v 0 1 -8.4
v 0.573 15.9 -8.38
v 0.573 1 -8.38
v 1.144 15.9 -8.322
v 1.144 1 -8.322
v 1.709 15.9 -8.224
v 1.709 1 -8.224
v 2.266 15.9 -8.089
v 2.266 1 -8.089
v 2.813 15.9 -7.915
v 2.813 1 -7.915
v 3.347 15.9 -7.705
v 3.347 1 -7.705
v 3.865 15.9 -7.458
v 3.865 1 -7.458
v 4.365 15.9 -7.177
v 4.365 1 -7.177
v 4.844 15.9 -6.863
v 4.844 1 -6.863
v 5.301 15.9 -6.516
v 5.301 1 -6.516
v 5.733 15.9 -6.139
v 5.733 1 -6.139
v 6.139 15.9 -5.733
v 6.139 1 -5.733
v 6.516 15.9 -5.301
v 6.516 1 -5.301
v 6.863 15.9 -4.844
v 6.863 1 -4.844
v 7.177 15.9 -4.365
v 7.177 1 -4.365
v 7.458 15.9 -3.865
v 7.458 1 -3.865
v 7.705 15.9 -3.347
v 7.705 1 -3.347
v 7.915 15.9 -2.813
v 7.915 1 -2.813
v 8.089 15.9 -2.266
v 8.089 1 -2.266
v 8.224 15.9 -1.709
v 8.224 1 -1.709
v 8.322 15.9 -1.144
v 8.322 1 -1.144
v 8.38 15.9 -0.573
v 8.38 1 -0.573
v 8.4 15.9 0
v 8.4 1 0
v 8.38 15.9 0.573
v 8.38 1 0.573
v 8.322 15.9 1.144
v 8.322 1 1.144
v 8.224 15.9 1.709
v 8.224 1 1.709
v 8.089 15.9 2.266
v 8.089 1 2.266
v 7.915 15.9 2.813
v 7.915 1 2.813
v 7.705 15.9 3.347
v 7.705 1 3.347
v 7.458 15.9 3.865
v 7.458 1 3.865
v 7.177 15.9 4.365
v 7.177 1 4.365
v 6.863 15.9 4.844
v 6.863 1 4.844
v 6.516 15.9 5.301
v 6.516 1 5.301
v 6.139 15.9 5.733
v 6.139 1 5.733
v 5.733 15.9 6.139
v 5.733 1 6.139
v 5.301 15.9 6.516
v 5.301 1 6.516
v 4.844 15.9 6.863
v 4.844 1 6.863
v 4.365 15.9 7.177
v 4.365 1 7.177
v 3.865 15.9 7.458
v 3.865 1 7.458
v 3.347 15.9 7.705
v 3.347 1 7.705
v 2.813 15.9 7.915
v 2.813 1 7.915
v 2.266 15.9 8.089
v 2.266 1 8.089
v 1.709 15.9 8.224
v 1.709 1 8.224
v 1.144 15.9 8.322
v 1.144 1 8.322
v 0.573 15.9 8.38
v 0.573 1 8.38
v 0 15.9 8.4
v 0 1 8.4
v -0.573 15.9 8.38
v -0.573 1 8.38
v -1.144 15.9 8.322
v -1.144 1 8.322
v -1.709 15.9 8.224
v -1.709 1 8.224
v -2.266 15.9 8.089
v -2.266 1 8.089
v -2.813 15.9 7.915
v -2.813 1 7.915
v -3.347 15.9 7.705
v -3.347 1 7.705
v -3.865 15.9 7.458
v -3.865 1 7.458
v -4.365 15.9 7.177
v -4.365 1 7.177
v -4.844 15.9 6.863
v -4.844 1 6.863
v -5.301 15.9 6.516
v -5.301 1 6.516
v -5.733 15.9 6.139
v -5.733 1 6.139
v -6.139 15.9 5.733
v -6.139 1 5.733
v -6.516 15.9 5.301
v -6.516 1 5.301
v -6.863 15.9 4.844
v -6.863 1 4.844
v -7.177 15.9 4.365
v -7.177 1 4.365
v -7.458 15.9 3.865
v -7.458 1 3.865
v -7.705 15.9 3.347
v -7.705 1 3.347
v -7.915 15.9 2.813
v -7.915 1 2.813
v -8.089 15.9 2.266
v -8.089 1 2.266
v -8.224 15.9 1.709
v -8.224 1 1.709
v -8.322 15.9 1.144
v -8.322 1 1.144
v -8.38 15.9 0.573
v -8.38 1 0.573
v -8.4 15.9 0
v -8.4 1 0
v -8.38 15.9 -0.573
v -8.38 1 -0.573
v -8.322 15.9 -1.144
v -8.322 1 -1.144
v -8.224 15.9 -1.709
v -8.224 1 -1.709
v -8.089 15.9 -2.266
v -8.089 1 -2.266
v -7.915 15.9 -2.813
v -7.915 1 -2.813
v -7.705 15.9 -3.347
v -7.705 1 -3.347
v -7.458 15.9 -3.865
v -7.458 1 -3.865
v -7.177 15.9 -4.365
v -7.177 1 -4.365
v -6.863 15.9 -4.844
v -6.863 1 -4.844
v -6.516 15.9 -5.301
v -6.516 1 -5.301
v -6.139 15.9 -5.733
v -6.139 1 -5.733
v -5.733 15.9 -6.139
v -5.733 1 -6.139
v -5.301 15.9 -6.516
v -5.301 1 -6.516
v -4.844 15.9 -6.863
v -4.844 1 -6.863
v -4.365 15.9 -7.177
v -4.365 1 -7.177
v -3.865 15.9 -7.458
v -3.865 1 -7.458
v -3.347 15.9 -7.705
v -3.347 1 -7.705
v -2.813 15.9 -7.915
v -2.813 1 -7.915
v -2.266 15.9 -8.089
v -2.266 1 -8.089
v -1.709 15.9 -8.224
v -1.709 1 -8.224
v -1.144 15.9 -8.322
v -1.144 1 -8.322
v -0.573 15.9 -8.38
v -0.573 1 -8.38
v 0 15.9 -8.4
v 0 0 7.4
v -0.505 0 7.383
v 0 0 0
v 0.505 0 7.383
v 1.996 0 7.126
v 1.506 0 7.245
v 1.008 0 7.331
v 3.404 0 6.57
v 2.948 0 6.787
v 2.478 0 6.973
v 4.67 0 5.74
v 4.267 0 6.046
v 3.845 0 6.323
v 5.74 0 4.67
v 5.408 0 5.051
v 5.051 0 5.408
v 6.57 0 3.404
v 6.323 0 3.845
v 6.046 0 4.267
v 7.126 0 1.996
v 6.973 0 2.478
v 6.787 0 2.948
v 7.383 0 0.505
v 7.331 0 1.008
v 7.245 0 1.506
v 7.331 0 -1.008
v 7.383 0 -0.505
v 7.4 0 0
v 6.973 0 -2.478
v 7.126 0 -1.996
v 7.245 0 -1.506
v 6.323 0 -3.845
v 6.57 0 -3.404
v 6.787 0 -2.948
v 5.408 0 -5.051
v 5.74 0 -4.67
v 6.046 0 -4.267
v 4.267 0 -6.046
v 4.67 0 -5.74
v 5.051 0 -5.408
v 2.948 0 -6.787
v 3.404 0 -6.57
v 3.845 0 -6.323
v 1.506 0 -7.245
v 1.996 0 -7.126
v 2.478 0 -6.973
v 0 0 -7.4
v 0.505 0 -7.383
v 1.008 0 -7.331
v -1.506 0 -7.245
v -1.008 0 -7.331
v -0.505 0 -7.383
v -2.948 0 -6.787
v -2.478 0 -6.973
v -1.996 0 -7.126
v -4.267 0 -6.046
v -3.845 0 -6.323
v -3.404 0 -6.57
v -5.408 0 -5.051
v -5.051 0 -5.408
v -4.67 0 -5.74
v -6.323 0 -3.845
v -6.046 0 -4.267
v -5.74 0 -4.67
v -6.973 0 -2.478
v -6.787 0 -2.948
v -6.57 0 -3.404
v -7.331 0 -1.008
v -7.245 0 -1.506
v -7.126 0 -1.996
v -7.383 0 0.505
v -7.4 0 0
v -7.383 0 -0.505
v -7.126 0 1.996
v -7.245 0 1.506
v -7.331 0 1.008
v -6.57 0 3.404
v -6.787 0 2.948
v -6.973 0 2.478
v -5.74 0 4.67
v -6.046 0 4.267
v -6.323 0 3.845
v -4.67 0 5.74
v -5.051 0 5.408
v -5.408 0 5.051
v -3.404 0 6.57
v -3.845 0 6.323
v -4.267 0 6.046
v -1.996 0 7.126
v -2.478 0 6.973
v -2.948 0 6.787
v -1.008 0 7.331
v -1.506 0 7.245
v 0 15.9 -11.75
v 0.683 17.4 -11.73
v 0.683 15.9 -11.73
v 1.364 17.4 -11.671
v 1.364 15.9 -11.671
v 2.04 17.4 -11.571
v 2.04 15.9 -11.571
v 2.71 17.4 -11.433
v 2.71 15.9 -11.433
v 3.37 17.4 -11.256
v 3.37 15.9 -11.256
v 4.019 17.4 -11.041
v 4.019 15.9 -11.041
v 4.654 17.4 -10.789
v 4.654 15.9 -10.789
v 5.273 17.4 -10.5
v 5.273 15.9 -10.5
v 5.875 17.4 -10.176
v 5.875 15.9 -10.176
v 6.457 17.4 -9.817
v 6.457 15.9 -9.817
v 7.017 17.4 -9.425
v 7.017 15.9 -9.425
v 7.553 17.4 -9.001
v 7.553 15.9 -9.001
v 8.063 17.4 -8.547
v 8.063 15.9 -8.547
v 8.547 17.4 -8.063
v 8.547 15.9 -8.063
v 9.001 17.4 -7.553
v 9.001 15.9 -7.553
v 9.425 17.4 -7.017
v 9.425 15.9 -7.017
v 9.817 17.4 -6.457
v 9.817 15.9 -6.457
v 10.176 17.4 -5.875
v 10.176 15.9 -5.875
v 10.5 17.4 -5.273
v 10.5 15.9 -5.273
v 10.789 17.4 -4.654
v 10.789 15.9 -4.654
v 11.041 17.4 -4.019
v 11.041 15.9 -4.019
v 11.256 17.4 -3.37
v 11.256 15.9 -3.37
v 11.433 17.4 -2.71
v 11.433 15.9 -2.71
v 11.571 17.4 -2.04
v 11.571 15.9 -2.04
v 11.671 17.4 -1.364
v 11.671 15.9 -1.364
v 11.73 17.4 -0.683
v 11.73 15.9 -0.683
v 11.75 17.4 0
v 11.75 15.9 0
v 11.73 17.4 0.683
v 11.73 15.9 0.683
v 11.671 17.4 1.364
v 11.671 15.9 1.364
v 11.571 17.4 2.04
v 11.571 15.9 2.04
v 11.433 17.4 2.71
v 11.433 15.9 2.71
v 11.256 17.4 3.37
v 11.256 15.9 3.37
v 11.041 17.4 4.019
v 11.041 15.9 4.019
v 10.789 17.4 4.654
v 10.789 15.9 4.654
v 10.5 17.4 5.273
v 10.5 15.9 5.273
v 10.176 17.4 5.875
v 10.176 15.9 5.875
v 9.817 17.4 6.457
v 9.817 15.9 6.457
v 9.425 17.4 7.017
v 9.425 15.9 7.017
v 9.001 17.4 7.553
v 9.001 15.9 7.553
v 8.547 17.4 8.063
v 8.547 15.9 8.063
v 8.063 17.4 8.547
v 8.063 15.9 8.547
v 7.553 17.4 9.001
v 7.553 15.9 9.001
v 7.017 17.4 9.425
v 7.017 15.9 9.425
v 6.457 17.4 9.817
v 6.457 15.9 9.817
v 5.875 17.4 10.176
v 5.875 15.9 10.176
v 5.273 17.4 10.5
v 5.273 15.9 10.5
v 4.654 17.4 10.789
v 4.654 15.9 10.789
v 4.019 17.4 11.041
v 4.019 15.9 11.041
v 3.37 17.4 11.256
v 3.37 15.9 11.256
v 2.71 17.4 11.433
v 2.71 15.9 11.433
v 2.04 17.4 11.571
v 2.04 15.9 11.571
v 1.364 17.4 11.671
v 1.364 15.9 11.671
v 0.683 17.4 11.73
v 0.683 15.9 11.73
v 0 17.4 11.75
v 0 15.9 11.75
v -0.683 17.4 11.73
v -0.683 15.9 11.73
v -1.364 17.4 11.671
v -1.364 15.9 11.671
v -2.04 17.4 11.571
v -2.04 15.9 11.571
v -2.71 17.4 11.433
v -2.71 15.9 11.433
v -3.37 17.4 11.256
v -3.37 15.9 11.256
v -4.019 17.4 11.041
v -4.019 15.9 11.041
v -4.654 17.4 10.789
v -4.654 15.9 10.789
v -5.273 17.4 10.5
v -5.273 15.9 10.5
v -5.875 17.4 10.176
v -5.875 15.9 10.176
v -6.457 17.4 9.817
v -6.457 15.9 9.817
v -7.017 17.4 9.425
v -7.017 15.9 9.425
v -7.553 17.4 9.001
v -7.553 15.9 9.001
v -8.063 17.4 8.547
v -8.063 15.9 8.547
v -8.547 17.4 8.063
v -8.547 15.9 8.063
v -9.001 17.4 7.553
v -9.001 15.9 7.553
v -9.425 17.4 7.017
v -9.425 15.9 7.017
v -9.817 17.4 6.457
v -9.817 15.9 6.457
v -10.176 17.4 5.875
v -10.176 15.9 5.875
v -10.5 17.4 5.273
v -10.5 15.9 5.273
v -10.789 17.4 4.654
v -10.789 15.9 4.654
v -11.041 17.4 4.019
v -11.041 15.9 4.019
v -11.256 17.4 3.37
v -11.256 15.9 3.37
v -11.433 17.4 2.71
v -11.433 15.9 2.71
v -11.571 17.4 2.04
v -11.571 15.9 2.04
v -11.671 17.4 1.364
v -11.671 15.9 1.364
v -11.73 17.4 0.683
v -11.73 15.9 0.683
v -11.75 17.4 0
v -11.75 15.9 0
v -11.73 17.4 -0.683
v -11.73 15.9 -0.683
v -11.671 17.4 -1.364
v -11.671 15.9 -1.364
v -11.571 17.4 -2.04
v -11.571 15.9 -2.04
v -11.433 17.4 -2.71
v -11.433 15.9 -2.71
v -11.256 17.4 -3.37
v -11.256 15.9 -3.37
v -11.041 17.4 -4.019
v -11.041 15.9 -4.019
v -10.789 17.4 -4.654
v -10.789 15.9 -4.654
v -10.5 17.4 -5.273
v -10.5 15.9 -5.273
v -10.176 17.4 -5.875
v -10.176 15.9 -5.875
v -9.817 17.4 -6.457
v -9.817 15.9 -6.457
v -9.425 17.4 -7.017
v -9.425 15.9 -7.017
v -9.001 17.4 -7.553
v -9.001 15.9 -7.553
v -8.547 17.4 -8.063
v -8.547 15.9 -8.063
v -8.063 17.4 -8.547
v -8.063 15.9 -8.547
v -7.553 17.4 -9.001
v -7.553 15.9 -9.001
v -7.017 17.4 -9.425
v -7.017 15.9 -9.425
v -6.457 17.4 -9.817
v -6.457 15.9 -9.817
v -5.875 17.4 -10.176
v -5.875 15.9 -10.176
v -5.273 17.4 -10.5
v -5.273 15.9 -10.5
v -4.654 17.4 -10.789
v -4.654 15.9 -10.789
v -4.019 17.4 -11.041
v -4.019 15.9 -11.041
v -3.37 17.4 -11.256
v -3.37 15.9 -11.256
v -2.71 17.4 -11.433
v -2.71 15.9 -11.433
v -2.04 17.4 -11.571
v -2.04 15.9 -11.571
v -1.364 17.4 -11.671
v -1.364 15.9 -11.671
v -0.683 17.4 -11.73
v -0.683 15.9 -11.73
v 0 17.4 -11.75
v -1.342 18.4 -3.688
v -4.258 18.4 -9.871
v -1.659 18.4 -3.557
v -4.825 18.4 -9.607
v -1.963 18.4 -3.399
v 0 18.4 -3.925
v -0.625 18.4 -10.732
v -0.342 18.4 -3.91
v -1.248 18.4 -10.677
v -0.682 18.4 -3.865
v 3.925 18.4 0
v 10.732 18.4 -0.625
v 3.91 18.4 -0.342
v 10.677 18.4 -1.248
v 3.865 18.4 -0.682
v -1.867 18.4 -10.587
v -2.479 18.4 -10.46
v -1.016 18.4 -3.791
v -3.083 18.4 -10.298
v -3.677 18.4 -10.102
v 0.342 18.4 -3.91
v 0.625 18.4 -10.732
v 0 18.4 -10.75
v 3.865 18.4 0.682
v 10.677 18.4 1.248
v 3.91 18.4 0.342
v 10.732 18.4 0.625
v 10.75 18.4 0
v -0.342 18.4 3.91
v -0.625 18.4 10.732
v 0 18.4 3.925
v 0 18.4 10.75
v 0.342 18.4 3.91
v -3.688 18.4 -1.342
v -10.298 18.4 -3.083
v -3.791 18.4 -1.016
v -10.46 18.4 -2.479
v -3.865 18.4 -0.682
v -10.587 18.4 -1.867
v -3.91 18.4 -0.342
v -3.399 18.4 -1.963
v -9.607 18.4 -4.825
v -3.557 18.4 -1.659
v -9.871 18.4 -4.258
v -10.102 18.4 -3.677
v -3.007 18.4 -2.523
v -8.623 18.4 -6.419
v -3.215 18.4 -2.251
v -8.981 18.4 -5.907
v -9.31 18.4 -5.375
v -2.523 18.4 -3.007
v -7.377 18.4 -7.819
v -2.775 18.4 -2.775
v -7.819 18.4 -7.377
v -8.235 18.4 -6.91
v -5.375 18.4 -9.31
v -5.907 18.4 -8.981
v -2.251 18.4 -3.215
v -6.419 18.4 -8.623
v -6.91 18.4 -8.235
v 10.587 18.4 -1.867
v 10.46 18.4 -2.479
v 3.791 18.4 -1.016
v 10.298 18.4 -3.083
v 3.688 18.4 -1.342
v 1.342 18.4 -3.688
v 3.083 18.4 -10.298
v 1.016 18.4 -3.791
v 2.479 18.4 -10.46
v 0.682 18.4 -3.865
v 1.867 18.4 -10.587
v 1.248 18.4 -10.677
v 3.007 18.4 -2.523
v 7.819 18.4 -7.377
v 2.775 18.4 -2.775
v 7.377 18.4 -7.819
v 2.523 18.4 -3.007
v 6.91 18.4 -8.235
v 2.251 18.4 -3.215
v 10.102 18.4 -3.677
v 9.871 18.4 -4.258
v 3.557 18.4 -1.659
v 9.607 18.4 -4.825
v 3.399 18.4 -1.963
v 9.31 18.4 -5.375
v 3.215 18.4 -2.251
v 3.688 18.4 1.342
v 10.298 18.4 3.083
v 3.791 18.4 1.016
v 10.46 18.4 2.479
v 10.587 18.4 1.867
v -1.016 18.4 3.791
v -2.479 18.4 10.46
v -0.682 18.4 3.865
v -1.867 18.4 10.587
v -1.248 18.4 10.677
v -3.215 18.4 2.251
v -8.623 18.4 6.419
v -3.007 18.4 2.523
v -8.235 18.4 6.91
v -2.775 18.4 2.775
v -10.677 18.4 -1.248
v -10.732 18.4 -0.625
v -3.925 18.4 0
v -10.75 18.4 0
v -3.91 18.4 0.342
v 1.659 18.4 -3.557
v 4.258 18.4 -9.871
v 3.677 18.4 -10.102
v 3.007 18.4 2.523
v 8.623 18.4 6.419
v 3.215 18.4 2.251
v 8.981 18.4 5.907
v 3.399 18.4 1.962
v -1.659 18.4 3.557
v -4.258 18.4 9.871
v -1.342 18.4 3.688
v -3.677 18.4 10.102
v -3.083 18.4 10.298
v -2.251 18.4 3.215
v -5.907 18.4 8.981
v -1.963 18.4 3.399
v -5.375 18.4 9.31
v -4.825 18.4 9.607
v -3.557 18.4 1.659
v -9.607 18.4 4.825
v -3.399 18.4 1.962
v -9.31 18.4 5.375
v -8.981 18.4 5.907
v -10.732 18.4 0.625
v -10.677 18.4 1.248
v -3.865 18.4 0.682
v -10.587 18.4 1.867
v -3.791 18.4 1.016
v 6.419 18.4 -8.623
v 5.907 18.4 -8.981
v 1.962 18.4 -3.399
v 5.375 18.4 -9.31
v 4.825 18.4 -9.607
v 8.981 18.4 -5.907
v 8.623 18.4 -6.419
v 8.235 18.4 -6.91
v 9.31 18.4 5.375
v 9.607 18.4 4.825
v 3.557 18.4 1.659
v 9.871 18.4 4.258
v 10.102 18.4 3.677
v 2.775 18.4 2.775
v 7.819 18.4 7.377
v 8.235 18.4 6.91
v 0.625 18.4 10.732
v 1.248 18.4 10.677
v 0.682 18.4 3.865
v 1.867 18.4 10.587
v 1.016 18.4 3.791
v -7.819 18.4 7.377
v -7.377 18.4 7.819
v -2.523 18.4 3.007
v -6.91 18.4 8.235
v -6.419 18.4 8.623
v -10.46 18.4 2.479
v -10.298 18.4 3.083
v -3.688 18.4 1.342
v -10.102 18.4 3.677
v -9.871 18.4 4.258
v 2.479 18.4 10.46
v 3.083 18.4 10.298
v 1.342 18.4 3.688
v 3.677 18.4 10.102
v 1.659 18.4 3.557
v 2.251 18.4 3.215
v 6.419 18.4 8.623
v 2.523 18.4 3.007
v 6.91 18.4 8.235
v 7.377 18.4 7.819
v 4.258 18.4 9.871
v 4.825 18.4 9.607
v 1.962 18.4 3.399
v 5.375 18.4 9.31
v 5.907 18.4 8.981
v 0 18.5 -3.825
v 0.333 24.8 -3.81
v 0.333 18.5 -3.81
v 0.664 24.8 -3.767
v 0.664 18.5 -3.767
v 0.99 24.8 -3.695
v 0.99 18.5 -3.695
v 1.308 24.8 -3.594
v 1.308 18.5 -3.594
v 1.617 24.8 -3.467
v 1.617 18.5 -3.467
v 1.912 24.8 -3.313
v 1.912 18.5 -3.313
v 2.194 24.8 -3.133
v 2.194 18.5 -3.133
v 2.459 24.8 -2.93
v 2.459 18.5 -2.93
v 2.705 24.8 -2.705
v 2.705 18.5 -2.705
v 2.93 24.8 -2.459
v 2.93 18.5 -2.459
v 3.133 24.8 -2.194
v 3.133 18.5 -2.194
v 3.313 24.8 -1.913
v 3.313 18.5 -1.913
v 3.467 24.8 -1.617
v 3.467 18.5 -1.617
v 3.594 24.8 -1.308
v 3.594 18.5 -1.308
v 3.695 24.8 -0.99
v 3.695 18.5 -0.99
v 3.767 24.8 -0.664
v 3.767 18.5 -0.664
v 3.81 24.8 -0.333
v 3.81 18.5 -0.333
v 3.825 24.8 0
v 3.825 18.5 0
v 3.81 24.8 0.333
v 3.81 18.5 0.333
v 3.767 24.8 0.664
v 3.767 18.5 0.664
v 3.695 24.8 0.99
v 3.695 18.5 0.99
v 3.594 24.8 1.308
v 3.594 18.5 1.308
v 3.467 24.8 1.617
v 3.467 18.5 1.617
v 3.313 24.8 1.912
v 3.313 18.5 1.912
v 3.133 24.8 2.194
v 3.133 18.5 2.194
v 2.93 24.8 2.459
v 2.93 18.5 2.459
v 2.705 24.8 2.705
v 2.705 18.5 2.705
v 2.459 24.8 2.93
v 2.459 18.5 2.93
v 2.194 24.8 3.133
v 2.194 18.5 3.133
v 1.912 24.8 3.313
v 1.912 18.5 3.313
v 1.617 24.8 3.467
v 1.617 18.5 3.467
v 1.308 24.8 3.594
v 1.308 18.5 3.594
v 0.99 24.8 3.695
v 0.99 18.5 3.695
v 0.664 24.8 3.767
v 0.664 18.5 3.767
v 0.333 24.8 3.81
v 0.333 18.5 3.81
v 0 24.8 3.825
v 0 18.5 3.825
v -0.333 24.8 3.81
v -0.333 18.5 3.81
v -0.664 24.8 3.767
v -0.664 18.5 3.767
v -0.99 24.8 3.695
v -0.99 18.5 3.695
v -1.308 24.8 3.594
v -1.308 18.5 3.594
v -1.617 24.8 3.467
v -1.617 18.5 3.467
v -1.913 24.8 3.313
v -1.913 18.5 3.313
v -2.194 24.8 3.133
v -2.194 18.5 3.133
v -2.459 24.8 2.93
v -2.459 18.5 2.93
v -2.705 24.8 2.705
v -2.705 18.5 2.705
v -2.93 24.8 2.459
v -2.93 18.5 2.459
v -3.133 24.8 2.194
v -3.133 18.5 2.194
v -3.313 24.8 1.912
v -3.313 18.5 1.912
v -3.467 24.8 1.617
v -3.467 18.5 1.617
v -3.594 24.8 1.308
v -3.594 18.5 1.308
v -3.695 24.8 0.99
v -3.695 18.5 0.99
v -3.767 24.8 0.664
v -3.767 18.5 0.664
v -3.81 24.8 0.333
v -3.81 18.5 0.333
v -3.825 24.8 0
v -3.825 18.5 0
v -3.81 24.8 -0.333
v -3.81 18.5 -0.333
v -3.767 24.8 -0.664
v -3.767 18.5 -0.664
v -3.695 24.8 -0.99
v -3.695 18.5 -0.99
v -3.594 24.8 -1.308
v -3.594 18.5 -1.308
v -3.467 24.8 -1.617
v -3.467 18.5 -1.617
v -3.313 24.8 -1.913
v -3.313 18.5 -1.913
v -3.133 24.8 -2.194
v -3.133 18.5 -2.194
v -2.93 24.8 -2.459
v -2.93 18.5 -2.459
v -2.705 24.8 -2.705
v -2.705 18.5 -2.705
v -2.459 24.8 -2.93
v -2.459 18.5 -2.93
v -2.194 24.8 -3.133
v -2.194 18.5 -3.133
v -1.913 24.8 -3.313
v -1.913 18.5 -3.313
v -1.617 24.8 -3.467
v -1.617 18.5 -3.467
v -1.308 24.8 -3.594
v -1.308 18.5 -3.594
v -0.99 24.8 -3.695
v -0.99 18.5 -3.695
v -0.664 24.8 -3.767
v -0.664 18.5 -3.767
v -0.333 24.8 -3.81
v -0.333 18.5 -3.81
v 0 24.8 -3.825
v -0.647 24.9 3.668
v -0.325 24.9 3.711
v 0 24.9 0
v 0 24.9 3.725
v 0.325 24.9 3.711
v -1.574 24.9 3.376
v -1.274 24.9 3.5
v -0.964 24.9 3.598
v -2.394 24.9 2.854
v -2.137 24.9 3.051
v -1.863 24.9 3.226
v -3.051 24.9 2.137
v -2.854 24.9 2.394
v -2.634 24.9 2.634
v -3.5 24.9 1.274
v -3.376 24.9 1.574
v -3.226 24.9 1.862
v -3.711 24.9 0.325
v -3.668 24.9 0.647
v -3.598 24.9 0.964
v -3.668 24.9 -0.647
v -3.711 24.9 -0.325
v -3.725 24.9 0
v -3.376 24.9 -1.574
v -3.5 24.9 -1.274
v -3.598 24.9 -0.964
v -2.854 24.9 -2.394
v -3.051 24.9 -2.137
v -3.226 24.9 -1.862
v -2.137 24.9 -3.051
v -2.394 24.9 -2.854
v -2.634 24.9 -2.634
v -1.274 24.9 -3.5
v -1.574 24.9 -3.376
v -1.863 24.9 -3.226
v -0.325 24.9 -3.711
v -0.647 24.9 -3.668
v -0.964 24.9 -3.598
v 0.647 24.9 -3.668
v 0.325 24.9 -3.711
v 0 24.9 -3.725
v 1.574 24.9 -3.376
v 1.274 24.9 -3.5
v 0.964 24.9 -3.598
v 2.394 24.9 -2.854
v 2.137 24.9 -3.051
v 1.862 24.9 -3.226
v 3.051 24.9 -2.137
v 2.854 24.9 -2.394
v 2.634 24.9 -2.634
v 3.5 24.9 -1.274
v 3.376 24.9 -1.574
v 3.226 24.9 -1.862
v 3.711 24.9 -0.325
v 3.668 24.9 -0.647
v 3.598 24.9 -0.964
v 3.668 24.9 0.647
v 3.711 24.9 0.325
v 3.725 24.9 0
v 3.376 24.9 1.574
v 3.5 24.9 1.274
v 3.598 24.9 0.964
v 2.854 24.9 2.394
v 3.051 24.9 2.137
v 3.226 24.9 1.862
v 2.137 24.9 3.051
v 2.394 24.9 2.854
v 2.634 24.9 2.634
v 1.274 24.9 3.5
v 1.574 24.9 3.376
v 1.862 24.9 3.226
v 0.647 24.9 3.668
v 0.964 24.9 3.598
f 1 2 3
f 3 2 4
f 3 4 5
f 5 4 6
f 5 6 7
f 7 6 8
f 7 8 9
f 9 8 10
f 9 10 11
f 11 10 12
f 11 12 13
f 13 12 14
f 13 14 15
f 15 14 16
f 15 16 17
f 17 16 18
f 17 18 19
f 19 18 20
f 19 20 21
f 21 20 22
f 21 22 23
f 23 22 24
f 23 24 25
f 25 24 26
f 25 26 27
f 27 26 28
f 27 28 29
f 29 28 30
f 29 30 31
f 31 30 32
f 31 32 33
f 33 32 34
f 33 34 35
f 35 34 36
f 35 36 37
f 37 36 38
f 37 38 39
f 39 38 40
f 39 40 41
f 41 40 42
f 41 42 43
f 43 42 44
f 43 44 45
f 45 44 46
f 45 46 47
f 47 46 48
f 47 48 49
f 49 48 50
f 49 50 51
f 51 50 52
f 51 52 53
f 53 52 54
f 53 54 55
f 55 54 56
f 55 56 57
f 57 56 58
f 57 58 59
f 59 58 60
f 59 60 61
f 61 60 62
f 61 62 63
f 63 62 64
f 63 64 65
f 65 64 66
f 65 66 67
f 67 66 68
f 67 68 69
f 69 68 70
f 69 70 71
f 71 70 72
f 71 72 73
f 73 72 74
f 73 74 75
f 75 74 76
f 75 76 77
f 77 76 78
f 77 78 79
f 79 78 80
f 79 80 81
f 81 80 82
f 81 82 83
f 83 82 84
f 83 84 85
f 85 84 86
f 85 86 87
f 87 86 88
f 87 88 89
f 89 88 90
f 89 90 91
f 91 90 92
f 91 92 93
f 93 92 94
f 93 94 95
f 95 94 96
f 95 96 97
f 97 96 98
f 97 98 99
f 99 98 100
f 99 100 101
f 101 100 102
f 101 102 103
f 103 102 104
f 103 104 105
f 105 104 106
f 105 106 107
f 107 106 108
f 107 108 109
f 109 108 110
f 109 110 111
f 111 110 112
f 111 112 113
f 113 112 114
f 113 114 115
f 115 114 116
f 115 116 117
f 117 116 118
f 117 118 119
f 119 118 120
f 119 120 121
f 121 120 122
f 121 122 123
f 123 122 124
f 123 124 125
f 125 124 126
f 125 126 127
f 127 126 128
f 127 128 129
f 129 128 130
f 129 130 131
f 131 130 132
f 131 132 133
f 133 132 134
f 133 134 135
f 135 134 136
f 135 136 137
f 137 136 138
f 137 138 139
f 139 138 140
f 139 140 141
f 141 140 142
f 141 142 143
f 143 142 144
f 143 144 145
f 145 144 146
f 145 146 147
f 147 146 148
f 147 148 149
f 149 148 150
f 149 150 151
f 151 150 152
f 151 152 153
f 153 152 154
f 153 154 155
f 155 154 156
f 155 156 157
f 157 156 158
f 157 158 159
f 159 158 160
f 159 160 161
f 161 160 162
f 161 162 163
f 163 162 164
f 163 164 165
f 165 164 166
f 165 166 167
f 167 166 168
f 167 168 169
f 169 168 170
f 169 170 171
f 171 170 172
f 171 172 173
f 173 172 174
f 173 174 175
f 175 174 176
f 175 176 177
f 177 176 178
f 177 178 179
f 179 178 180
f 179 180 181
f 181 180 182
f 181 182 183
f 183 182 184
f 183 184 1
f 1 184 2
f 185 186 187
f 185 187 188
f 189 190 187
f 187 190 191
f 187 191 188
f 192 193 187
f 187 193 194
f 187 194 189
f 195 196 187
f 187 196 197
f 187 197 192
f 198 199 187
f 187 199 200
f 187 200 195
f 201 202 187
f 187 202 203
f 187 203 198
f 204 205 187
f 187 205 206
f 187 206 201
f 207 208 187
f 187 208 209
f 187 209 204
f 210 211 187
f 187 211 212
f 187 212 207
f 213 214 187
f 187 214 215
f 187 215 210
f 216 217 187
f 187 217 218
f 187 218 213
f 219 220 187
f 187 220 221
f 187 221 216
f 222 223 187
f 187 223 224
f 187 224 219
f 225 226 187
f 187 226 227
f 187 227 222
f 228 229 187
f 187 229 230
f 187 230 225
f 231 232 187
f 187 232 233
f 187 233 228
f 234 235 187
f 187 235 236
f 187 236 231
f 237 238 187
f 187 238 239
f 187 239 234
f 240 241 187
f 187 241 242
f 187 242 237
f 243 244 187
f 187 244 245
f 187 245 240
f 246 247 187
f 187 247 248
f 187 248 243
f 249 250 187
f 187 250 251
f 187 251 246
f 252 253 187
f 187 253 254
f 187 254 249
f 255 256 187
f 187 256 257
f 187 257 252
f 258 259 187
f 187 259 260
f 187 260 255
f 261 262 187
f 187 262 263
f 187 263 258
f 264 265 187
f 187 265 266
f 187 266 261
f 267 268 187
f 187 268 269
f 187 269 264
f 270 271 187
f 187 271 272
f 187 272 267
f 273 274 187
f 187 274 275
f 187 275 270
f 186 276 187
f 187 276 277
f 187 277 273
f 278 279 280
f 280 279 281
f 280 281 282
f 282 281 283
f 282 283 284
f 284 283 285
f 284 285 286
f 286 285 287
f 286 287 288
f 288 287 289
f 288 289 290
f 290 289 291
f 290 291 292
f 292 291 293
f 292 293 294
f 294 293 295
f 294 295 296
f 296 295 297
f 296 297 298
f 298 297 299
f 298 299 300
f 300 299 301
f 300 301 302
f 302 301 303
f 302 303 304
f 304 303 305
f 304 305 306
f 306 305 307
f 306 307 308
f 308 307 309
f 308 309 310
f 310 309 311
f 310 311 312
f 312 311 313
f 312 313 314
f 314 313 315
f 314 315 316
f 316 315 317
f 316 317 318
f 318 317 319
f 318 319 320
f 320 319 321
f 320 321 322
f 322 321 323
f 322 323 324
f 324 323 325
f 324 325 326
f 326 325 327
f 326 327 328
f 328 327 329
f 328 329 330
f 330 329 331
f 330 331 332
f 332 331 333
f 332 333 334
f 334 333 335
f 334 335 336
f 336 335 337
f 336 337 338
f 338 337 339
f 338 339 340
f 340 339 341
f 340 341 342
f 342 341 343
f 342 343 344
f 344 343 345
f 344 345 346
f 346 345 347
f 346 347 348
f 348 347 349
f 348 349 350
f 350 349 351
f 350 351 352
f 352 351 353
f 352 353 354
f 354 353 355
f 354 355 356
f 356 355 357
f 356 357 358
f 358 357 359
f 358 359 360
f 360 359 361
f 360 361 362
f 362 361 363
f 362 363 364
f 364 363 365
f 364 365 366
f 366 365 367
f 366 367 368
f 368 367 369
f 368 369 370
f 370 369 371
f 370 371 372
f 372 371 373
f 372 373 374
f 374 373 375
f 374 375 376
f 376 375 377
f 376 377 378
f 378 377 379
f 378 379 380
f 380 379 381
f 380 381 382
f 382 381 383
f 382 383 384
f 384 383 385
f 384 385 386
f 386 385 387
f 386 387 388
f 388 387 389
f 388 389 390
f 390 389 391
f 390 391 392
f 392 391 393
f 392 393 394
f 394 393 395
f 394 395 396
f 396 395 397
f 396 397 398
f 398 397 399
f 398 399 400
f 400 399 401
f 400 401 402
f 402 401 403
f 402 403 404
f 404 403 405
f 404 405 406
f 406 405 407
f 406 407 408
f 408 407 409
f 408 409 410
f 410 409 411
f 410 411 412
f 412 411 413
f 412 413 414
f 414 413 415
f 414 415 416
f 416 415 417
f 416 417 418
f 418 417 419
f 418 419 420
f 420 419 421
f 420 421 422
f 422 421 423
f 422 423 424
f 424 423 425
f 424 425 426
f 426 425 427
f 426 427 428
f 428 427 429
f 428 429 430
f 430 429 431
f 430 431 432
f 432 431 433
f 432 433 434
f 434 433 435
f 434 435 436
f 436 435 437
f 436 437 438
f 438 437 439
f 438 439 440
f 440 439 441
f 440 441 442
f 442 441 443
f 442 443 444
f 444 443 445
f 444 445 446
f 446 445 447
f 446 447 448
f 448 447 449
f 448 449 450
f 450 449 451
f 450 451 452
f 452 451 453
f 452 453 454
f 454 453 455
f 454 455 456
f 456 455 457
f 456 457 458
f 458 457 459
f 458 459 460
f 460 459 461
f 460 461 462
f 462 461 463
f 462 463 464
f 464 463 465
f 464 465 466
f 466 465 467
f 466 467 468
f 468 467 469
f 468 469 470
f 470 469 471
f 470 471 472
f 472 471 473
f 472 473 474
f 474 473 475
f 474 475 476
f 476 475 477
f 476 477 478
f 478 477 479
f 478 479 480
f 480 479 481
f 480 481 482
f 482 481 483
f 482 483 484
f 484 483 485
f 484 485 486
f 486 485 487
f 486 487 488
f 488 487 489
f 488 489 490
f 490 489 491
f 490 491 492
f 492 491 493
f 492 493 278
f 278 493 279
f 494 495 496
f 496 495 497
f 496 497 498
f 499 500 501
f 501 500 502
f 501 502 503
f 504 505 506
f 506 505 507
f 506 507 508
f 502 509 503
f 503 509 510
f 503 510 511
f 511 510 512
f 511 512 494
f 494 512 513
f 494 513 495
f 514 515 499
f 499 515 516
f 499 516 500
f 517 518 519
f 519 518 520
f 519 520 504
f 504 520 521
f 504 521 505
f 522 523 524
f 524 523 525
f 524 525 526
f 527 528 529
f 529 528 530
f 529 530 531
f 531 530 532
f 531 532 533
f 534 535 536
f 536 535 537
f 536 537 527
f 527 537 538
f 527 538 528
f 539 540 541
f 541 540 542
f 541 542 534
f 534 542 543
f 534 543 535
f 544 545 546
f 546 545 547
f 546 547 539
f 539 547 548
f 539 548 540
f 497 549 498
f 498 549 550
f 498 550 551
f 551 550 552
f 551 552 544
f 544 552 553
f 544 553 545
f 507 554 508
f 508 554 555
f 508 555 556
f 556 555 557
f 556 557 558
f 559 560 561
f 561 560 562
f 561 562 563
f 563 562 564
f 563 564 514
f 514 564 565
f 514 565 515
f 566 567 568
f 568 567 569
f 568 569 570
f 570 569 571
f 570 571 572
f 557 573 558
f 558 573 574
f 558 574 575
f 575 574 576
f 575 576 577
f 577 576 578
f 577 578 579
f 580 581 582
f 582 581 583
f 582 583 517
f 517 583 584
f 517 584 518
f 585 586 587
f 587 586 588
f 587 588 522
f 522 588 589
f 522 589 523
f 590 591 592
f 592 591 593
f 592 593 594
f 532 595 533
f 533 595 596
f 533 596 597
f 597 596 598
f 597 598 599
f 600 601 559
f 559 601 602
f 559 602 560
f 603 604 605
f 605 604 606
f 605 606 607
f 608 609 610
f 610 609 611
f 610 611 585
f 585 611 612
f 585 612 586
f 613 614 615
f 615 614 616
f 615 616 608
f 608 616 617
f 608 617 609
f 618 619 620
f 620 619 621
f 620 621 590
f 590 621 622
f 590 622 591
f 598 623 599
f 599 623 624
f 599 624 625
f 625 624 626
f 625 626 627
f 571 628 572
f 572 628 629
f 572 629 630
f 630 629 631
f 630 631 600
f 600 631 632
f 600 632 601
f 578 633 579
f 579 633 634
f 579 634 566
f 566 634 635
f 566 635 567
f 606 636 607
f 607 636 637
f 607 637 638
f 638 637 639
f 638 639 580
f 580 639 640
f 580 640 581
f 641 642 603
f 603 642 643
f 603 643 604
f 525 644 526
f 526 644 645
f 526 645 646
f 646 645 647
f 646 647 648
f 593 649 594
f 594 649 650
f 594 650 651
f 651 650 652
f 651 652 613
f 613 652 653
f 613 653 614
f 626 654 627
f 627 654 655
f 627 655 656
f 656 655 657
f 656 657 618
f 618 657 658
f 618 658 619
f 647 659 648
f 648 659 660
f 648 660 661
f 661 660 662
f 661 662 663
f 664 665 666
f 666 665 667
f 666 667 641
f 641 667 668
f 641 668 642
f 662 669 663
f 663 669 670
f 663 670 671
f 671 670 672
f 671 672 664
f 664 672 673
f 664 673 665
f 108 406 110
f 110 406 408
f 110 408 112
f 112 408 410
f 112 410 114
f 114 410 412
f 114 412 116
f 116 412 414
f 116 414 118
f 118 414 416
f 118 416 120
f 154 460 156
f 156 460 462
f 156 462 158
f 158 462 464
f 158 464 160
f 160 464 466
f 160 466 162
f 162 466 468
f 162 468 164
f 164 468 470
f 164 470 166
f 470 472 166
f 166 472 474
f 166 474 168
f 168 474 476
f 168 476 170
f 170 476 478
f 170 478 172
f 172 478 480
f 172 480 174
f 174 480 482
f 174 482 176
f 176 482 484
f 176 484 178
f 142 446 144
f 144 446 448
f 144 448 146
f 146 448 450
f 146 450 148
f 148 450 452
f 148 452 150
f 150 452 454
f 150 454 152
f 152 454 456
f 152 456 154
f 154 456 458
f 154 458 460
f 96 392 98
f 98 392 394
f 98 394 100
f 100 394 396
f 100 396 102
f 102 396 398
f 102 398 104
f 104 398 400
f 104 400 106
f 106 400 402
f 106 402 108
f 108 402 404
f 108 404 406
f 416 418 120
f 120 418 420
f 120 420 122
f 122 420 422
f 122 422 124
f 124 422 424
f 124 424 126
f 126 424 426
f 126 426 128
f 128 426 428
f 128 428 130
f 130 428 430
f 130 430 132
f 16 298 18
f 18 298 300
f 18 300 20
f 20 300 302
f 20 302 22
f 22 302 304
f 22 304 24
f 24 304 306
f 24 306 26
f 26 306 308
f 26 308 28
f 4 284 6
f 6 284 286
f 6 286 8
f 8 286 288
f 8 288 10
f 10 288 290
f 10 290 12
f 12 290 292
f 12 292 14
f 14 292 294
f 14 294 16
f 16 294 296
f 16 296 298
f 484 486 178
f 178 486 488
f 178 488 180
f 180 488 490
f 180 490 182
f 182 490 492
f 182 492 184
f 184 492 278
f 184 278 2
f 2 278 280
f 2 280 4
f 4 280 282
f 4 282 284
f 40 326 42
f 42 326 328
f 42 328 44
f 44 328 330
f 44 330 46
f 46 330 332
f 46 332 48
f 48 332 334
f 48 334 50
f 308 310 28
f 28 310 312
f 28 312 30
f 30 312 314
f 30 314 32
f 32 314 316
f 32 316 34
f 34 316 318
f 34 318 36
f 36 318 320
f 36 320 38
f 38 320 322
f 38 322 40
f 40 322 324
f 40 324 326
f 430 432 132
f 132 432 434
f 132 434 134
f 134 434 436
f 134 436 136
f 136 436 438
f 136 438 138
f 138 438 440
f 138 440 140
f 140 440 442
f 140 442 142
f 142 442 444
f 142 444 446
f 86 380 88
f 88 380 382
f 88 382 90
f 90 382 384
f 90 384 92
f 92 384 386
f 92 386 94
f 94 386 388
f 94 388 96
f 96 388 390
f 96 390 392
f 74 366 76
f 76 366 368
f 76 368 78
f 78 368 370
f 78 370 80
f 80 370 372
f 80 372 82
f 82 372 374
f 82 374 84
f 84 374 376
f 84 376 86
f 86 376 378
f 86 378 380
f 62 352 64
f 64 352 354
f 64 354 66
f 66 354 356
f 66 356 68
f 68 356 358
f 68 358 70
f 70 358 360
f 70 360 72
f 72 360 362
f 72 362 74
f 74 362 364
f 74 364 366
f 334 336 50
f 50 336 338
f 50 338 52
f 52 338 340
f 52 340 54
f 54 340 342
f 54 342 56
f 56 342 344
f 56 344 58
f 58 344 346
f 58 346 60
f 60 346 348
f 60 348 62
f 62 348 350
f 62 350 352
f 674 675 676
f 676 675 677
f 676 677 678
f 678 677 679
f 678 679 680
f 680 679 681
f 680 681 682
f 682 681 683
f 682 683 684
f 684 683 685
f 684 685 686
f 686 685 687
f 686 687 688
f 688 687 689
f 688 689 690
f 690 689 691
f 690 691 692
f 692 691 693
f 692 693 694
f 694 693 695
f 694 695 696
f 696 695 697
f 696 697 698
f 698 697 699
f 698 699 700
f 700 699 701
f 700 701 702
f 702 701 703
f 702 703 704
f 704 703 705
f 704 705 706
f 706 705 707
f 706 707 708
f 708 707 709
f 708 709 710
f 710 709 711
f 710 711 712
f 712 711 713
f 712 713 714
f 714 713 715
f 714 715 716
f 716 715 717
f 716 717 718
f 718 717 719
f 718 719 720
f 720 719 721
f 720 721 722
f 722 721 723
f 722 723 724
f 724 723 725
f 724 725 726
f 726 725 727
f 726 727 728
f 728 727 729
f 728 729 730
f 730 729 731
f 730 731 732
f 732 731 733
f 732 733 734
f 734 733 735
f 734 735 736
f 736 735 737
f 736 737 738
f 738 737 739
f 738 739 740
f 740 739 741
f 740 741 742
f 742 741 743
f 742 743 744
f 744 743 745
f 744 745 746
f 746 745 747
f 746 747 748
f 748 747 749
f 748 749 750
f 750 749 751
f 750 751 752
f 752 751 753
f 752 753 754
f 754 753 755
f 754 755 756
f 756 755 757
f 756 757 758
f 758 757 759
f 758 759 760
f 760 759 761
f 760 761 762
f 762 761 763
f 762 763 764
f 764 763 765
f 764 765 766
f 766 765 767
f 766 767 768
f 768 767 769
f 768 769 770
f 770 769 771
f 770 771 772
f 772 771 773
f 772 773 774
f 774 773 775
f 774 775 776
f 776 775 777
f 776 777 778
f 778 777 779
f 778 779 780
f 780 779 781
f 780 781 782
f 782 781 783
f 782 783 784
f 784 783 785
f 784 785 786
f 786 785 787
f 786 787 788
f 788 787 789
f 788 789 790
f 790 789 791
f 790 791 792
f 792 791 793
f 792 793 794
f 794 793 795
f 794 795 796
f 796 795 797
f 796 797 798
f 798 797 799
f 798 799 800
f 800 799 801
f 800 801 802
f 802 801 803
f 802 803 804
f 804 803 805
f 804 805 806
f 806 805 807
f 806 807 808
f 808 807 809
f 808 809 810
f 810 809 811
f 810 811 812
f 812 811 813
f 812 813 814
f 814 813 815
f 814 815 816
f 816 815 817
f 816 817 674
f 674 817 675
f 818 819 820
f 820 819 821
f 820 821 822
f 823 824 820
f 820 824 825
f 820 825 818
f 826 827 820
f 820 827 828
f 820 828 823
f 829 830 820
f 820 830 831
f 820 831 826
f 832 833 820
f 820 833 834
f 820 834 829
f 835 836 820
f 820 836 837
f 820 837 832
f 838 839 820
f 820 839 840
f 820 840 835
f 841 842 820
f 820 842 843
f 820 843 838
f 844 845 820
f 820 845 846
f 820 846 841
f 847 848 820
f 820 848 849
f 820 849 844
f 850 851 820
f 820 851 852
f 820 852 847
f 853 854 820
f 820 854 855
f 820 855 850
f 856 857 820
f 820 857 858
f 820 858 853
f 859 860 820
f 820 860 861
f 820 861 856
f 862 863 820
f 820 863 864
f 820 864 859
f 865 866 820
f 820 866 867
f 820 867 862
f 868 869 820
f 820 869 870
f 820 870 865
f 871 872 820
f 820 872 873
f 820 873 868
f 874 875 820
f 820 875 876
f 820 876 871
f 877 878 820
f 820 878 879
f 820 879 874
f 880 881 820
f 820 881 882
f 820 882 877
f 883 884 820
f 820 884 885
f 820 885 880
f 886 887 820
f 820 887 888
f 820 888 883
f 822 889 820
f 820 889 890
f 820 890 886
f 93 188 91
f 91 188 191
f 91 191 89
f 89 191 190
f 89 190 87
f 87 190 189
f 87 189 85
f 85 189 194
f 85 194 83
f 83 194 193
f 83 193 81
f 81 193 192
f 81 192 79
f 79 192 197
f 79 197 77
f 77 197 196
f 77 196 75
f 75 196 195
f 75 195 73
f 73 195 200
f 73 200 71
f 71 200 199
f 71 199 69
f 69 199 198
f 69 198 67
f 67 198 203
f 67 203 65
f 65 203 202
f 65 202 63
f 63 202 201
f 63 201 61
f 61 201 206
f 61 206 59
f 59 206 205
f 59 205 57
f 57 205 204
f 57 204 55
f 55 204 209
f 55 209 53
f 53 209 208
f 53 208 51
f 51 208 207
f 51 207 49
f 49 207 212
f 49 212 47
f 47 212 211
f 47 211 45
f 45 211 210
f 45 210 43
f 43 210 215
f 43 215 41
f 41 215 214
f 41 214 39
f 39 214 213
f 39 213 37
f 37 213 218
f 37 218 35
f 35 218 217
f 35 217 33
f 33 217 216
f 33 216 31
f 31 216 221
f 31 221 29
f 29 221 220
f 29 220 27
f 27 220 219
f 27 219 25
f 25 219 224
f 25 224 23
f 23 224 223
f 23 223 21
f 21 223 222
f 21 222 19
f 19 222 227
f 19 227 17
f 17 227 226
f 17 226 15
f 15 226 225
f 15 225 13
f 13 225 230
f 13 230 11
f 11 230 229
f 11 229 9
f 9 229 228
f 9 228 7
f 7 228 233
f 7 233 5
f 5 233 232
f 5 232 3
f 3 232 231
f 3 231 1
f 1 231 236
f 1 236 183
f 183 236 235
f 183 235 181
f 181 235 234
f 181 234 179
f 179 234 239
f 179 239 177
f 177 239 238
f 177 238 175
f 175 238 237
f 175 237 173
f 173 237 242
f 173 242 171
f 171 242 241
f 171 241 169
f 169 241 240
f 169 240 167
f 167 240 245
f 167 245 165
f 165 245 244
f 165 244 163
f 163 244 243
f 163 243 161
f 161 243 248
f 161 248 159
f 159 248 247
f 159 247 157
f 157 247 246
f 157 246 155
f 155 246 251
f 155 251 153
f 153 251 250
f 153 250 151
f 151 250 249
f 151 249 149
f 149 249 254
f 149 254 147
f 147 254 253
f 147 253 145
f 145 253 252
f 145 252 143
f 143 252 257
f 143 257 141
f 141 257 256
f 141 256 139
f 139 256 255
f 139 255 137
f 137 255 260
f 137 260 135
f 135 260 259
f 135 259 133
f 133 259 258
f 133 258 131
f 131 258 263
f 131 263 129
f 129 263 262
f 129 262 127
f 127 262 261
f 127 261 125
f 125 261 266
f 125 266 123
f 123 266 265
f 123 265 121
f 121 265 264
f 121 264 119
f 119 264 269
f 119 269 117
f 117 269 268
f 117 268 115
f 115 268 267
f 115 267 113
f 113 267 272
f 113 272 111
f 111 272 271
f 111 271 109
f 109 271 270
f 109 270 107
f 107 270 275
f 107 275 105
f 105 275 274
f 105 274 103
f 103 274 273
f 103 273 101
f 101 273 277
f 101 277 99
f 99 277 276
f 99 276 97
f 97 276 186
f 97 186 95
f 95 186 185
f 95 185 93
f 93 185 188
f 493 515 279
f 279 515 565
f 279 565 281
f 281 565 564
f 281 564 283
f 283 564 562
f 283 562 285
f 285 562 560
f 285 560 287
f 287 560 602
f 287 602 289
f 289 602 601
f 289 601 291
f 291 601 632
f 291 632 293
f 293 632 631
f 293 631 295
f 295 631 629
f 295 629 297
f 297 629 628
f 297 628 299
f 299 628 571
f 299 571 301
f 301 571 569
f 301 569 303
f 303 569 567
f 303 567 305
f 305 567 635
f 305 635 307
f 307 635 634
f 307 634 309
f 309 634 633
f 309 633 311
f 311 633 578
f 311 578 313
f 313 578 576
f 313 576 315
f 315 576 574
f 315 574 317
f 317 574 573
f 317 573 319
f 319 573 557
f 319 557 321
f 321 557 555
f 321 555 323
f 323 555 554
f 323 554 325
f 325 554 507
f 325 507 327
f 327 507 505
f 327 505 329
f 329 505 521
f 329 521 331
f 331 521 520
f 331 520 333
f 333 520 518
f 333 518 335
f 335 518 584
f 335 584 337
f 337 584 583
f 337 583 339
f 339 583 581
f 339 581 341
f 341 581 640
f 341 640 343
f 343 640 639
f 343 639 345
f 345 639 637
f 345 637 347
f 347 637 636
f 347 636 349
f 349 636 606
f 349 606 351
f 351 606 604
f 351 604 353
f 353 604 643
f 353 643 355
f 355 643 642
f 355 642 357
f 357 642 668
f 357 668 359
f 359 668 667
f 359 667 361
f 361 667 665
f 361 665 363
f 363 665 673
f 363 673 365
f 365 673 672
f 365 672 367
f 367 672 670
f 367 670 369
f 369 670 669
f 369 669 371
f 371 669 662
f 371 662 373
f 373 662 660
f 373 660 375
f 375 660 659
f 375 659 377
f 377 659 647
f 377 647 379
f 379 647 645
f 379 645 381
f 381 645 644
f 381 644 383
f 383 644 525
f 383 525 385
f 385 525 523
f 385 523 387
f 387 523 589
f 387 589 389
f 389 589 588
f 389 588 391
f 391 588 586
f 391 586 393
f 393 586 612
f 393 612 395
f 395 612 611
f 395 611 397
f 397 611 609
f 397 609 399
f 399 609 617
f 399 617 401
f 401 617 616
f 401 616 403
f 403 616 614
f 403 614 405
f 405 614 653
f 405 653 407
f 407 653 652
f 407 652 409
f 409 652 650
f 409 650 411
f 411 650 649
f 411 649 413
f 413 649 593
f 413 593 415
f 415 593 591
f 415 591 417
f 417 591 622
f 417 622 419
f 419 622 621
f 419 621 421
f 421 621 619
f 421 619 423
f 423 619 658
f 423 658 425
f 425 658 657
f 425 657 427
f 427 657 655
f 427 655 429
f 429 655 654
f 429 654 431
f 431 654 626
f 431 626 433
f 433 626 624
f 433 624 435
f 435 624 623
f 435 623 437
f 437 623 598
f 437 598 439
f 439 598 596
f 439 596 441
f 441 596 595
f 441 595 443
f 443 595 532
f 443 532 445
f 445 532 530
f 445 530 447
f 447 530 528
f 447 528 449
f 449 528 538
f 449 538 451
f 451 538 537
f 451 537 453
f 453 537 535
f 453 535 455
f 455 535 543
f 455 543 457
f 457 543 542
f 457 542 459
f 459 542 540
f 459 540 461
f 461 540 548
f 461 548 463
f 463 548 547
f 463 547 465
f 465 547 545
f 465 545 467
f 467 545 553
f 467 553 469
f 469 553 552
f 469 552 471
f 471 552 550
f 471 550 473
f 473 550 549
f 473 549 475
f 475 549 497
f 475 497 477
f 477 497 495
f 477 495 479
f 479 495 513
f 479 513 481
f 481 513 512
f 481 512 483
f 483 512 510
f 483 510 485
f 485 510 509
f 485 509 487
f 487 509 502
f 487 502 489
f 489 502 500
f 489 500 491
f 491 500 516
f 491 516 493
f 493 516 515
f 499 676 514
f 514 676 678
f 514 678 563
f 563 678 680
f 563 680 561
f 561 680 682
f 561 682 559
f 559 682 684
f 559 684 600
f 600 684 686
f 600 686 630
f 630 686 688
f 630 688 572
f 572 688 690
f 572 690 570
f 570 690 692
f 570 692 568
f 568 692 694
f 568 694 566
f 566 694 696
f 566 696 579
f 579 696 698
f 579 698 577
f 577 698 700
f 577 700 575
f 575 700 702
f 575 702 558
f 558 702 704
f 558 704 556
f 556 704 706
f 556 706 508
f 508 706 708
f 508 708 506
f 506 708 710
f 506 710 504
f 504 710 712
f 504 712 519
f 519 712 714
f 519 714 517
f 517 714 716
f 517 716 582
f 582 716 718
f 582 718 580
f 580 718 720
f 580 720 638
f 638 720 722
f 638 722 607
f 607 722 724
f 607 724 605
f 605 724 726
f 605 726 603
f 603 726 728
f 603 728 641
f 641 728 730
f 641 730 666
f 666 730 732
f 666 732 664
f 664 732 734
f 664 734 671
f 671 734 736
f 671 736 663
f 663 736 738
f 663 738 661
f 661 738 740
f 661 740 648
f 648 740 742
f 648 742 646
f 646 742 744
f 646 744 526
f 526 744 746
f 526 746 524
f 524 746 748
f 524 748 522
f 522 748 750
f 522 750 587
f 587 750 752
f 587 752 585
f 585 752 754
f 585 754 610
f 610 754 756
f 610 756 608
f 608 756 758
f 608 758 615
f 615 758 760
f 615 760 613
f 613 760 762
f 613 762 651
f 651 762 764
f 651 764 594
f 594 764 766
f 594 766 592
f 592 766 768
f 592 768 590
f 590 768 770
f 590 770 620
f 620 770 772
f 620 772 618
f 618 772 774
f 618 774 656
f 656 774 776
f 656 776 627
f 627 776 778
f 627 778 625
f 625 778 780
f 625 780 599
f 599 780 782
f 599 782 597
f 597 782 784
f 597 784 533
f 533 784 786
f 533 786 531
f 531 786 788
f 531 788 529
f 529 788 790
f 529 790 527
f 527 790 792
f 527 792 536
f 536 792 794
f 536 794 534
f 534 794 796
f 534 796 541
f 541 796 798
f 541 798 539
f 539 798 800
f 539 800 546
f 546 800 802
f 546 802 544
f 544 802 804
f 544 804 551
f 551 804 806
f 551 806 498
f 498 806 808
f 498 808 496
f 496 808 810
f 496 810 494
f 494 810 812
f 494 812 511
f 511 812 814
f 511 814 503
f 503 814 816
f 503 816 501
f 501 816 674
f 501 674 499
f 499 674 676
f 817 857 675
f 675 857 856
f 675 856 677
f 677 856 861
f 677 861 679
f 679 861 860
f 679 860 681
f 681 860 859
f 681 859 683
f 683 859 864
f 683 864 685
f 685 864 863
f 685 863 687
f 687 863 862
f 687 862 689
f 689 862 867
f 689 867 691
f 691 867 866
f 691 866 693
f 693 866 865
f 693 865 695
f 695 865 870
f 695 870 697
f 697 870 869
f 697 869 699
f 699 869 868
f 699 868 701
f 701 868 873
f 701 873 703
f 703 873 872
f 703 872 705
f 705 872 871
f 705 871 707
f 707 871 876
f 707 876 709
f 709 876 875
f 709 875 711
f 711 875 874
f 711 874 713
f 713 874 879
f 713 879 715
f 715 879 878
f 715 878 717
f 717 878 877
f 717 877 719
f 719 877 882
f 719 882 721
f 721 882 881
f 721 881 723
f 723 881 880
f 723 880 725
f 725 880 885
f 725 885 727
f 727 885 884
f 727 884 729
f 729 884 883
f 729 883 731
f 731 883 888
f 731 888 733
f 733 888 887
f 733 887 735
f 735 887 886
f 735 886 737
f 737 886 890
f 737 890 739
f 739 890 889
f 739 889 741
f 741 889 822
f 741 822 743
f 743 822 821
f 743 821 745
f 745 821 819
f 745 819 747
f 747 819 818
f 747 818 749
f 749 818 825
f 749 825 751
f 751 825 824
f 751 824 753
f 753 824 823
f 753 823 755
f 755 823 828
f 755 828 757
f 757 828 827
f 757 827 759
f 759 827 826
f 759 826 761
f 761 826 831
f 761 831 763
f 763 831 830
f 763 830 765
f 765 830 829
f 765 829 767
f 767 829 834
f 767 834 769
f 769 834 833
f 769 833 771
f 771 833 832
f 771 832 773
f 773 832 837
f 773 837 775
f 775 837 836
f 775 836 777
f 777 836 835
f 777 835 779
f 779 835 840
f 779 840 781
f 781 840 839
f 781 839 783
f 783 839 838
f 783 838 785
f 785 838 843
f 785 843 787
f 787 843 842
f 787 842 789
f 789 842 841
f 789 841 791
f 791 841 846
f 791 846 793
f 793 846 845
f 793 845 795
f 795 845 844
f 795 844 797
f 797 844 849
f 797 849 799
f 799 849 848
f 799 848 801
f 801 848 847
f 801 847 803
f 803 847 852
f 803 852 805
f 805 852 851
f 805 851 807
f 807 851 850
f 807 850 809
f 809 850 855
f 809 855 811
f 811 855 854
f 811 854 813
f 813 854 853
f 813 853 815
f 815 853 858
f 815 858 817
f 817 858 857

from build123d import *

# Parameters (mm, degrees)
SKETCH_1_R      = 8.4
EXTRUDE_1_DEPTH = 15.9
SKETCH_2_R      = 11.75
EXTRUDE_2_DEPTH = 2.5
SKETCH_3_R      = 3.825
EXTRUDE_3_DEPTH = 6.5
CHAMFER_1_SIZE  = 1
CHAMFER_2_SIZE  = 0.1


with BuildPart() as part:
    # Эскиз1 → Бобышка-Вытянуть1 (new body)
    with BuildSketch(Plane(origin=(0, 0, 0), x_dir=(1, 0, 0), z_dir=(0, 1, 0))):
        with Locations(Location((0, 0, 0), (0, 0, 270))):
            Circle(SKETCH_1_R)
    extrude(amount=EXTRUDE_1_DEPTH)

    # Эскиз2 → Бобышка-Вытянуть2 (add)
    with BuildSketch(Plane(origin=(0, 15.9, 0), x_dir=(1, 0, 0), z_dir=(0, 1, 0))):
        with Locations(Location((0, 0, 0), (0, 0, 270))):
            Circle(SKETCH_2_R)
    extrude(amount=EXTRUDE_2_DEPTH)

    # Эскиз3 → Бобышка-Вытянуть3 (add)
    with BuildSketch(Plane(origin=(0, 18.4, 0), x_dir=(1, 0, 0), z_dir=(0, 1, 0))):
        with Locations(Location((0, 0, 0), (0, 0, 90))):
            Circle(SKETCH_3_R)
    extrude(amount=EXTRUDE_3_DEPTH)

    # Фаска1
    chamfer_1_edges = [part.edges().sort_by_distance(p)[0] for p in [
        (0, 0, -8.4),
        (0, 18.4, -11.75),
    ]]
    chamfer(chamfer_1_edges, length=CHAMFER_1_SIZE)

    # Фаска2
    chamfer_2_edges = [part.edges().sort_by_distance(p)[0] for p in [
        (0, 24.9, 3.825),
        (0, 18.4, 3.825),
    ]]
    chamfer(chamfer_2_edges, length=CHAMFER_2_SIZE)


solid = part.part
